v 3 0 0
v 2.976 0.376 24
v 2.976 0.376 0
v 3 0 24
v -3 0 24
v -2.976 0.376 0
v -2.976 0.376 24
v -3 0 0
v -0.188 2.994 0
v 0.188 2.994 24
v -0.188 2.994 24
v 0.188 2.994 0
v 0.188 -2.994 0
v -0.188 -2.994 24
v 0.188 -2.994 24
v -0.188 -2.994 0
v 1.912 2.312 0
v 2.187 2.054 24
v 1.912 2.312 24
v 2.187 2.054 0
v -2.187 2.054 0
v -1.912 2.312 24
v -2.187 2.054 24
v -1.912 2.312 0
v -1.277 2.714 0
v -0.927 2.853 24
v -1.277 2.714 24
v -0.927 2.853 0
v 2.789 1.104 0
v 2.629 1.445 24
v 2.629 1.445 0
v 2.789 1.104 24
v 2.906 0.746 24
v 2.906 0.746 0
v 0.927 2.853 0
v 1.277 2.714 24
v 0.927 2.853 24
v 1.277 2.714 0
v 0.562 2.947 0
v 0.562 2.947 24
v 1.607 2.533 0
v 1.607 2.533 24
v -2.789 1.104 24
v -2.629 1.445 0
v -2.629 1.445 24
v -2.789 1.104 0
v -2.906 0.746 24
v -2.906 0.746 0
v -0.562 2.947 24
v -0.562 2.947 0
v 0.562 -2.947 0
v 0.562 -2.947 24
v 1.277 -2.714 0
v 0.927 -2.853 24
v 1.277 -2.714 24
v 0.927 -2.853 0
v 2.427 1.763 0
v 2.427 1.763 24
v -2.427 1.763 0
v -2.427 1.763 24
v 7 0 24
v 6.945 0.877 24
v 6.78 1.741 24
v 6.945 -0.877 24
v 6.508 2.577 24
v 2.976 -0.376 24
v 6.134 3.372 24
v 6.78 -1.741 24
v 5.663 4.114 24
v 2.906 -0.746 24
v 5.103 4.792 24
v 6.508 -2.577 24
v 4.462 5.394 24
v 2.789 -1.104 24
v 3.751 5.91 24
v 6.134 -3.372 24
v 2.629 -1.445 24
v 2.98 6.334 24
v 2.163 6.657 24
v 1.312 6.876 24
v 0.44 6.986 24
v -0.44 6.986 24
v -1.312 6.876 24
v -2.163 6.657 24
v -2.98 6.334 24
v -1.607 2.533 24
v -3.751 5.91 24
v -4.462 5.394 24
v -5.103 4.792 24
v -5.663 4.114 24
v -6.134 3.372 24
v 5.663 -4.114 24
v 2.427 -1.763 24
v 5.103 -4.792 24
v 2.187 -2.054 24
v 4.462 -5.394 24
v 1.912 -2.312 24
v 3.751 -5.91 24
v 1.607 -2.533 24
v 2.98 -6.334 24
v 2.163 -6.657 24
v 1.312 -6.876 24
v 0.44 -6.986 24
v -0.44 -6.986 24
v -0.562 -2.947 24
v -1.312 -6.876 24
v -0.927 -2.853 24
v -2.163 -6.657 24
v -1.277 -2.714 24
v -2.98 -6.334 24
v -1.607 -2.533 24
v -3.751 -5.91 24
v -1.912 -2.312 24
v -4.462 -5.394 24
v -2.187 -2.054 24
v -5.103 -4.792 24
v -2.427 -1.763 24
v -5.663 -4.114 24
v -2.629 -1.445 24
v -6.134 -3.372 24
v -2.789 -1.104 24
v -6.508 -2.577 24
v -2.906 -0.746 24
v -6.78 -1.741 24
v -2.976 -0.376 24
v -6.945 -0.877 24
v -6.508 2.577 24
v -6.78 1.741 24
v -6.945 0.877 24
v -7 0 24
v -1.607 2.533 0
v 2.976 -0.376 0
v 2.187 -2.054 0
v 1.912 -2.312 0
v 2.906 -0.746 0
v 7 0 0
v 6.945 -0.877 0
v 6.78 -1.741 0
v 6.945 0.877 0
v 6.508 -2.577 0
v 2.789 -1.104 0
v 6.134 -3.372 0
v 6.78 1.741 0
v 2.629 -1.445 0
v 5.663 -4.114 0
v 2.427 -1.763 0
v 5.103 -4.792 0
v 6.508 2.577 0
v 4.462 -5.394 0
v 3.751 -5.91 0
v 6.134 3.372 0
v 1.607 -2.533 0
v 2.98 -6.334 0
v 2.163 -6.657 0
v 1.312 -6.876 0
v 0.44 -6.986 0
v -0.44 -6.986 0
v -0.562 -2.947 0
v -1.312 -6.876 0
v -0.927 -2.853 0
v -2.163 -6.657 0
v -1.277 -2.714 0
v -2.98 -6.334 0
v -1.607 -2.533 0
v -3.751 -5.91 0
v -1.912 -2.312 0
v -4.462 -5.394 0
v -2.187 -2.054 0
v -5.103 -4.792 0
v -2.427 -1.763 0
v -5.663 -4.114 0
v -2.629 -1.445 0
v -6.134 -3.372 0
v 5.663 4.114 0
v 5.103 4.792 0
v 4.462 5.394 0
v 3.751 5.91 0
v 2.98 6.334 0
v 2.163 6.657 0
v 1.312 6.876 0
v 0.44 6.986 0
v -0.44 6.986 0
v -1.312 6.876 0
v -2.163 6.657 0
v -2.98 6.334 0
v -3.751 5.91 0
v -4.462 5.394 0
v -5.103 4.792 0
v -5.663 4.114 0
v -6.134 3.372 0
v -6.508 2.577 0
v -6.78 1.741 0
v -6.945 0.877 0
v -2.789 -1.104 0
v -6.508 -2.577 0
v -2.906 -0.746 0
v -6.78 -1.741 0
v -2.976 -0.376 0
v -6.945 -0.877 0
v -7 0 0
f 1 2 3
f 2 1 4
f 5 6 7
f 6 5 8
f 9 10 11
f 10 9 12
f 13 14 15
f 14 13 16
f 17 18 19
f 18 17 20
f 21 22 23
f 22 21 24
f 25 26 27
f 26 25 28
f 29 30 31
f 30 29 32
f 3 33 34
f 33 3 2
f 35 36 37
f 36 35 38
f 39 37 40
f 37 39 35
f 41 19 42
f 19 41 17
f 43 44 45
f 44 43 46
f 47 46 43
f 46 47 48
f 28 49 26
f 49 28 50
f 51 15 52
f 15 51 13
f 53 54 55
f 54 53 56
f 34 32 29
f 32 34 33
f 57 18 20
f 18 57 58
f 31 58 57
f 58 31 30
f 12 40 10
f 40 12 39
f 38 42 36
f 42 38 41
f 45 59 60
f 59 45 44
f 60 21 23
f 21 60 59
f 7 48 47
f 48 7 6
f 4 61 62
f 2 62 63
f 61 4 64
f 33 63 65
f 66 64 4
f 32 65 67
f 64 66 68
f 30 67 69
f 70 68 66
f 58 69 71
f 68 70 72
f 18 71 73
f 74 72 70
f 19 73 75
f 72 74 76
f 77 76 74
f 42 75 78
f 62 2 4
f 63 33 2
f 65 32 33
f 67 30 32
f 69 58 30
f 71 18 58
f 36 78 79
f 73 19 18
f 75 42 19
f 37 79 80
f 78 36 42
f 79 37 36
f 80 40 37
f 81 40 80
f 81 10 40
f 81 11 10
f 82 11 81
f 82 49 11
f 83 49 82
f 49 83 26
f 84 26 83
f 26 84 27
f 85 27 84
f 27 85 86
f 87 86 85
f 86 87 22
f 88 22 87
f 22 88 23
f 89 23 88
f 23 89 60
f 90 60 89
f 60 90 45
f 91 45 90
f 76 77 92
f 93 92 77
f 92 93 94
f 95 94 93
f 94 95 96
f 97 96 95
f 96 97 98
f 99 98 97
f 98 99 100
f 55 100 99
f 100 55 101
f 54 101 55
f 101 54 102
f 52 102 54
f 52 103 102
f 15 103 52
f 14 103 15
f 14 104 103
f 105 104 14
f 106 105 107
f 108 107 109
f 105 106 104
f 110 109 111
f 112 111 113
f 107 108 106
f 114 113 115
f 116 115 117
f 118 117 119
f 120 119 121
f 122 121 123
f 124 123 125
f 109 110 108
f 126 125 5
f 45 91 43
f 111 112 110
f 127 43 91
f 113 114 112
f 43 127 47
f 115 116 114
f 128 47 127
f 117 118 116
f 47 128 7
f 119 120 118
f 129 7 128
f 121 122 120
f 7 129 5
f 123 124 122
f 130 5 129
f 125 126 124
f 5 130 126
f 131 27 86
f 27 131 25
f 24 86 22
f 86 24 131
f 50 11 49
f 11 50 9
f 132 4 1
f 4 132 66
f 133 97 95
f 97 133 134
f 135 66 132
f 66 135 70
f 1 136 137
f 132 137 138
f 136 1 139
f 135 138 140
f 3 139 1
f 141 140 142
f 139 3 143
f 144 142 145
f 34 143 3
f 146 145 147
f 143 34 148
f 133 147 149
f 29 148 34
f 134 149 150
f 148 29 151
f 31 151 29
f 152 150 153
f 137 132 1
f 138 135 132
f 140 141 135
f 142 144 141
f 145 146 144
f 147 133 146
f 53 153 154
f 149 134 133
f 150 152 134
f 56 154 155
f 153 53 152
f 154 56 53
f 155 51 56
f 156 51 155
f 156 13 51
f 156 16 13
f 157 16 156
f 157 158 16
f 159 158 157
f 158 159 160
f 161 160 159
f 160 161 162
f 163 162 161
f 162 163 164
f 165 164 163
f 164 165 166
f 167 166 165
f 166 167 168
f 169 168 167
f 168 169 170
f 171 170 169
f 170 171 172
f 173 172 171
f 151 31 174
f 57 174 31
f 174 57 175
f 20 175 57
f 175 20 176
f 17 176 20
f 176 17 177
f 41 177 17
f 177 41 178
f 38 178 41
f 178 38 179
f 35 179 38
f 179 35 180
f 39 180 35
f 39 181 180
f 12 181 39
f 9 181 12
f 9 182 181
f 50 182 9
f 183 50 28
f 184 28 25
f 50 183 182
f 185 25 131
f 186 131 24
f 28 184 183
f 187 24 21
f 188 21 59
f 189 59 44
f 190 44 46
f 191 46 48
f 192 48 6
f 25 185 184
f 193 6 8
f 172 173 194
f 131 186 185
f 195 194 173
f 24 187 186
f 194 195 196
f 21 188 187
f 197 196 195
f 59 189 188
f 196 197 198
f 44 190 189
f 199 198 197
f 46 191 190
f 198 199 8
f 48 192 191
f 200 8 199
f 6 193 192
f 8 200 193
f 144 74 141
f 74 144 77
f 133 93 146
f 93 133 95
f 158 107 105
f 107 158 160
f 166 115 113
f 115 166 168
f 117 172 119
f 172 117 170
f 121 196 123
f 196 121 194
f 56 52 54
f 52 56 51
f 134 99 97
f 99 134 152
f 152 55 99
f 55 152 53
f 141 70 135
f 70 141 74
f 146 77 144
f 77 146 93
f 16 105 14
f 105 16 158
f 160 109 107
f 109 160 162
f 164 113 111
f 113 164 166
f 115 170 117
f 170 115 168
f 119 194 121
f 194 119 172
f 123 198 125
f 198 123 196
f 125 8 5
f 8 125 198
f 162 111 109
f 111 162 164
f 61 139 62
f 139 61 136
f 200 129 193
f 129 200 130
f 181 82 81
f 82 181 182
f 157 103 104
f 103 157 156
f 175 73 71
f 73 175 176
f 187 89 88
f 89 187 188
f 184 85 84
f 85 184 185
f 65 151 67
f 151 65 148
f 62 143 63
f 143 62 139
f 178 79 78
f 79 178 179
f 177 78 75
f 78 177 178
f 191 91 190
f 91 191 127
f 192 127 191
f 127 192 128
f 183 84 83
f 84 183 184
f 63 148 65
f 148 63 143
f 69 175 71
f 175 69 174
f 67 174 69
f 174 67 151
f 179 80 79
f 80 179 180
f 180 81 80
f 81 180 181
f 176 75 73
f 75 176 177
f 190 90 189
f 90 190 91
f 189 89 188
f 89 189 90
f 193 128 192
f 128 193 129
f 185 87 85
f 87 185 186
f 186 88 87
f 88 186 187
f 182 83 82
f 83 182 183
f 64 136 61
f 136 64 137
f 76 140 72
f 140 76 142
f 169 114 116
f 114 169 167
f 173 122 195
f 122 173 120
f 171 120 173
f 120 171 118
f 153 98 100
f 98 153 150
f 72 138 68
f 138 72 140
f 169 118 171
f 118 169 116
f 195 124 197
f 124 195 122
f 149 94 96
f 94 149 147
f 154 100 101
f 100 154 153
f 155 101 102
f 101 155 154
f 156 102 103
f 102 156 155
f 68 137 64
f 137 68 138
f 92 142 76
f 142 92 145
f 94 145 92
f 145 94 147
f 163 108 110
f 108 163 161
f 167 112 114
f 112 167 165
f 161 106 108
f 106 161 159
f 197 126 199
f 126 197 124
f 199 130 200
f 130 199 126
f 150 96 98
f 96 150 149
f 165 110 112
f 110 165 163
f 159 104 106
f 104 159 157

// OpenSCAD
$fn = 50;


difference() {
	union() {
		cylinder(h = 24, r = 7.0000000000);
	}
	union() {
		cylinder(h = 24, r = 3.0000000000);
		cylinder(h = 24, r = 1.5000000000);
		cylinder(h = 24, r = 1.5000000000);
		cylinder(h = 24, r = 1.5000000000);
	}
}
